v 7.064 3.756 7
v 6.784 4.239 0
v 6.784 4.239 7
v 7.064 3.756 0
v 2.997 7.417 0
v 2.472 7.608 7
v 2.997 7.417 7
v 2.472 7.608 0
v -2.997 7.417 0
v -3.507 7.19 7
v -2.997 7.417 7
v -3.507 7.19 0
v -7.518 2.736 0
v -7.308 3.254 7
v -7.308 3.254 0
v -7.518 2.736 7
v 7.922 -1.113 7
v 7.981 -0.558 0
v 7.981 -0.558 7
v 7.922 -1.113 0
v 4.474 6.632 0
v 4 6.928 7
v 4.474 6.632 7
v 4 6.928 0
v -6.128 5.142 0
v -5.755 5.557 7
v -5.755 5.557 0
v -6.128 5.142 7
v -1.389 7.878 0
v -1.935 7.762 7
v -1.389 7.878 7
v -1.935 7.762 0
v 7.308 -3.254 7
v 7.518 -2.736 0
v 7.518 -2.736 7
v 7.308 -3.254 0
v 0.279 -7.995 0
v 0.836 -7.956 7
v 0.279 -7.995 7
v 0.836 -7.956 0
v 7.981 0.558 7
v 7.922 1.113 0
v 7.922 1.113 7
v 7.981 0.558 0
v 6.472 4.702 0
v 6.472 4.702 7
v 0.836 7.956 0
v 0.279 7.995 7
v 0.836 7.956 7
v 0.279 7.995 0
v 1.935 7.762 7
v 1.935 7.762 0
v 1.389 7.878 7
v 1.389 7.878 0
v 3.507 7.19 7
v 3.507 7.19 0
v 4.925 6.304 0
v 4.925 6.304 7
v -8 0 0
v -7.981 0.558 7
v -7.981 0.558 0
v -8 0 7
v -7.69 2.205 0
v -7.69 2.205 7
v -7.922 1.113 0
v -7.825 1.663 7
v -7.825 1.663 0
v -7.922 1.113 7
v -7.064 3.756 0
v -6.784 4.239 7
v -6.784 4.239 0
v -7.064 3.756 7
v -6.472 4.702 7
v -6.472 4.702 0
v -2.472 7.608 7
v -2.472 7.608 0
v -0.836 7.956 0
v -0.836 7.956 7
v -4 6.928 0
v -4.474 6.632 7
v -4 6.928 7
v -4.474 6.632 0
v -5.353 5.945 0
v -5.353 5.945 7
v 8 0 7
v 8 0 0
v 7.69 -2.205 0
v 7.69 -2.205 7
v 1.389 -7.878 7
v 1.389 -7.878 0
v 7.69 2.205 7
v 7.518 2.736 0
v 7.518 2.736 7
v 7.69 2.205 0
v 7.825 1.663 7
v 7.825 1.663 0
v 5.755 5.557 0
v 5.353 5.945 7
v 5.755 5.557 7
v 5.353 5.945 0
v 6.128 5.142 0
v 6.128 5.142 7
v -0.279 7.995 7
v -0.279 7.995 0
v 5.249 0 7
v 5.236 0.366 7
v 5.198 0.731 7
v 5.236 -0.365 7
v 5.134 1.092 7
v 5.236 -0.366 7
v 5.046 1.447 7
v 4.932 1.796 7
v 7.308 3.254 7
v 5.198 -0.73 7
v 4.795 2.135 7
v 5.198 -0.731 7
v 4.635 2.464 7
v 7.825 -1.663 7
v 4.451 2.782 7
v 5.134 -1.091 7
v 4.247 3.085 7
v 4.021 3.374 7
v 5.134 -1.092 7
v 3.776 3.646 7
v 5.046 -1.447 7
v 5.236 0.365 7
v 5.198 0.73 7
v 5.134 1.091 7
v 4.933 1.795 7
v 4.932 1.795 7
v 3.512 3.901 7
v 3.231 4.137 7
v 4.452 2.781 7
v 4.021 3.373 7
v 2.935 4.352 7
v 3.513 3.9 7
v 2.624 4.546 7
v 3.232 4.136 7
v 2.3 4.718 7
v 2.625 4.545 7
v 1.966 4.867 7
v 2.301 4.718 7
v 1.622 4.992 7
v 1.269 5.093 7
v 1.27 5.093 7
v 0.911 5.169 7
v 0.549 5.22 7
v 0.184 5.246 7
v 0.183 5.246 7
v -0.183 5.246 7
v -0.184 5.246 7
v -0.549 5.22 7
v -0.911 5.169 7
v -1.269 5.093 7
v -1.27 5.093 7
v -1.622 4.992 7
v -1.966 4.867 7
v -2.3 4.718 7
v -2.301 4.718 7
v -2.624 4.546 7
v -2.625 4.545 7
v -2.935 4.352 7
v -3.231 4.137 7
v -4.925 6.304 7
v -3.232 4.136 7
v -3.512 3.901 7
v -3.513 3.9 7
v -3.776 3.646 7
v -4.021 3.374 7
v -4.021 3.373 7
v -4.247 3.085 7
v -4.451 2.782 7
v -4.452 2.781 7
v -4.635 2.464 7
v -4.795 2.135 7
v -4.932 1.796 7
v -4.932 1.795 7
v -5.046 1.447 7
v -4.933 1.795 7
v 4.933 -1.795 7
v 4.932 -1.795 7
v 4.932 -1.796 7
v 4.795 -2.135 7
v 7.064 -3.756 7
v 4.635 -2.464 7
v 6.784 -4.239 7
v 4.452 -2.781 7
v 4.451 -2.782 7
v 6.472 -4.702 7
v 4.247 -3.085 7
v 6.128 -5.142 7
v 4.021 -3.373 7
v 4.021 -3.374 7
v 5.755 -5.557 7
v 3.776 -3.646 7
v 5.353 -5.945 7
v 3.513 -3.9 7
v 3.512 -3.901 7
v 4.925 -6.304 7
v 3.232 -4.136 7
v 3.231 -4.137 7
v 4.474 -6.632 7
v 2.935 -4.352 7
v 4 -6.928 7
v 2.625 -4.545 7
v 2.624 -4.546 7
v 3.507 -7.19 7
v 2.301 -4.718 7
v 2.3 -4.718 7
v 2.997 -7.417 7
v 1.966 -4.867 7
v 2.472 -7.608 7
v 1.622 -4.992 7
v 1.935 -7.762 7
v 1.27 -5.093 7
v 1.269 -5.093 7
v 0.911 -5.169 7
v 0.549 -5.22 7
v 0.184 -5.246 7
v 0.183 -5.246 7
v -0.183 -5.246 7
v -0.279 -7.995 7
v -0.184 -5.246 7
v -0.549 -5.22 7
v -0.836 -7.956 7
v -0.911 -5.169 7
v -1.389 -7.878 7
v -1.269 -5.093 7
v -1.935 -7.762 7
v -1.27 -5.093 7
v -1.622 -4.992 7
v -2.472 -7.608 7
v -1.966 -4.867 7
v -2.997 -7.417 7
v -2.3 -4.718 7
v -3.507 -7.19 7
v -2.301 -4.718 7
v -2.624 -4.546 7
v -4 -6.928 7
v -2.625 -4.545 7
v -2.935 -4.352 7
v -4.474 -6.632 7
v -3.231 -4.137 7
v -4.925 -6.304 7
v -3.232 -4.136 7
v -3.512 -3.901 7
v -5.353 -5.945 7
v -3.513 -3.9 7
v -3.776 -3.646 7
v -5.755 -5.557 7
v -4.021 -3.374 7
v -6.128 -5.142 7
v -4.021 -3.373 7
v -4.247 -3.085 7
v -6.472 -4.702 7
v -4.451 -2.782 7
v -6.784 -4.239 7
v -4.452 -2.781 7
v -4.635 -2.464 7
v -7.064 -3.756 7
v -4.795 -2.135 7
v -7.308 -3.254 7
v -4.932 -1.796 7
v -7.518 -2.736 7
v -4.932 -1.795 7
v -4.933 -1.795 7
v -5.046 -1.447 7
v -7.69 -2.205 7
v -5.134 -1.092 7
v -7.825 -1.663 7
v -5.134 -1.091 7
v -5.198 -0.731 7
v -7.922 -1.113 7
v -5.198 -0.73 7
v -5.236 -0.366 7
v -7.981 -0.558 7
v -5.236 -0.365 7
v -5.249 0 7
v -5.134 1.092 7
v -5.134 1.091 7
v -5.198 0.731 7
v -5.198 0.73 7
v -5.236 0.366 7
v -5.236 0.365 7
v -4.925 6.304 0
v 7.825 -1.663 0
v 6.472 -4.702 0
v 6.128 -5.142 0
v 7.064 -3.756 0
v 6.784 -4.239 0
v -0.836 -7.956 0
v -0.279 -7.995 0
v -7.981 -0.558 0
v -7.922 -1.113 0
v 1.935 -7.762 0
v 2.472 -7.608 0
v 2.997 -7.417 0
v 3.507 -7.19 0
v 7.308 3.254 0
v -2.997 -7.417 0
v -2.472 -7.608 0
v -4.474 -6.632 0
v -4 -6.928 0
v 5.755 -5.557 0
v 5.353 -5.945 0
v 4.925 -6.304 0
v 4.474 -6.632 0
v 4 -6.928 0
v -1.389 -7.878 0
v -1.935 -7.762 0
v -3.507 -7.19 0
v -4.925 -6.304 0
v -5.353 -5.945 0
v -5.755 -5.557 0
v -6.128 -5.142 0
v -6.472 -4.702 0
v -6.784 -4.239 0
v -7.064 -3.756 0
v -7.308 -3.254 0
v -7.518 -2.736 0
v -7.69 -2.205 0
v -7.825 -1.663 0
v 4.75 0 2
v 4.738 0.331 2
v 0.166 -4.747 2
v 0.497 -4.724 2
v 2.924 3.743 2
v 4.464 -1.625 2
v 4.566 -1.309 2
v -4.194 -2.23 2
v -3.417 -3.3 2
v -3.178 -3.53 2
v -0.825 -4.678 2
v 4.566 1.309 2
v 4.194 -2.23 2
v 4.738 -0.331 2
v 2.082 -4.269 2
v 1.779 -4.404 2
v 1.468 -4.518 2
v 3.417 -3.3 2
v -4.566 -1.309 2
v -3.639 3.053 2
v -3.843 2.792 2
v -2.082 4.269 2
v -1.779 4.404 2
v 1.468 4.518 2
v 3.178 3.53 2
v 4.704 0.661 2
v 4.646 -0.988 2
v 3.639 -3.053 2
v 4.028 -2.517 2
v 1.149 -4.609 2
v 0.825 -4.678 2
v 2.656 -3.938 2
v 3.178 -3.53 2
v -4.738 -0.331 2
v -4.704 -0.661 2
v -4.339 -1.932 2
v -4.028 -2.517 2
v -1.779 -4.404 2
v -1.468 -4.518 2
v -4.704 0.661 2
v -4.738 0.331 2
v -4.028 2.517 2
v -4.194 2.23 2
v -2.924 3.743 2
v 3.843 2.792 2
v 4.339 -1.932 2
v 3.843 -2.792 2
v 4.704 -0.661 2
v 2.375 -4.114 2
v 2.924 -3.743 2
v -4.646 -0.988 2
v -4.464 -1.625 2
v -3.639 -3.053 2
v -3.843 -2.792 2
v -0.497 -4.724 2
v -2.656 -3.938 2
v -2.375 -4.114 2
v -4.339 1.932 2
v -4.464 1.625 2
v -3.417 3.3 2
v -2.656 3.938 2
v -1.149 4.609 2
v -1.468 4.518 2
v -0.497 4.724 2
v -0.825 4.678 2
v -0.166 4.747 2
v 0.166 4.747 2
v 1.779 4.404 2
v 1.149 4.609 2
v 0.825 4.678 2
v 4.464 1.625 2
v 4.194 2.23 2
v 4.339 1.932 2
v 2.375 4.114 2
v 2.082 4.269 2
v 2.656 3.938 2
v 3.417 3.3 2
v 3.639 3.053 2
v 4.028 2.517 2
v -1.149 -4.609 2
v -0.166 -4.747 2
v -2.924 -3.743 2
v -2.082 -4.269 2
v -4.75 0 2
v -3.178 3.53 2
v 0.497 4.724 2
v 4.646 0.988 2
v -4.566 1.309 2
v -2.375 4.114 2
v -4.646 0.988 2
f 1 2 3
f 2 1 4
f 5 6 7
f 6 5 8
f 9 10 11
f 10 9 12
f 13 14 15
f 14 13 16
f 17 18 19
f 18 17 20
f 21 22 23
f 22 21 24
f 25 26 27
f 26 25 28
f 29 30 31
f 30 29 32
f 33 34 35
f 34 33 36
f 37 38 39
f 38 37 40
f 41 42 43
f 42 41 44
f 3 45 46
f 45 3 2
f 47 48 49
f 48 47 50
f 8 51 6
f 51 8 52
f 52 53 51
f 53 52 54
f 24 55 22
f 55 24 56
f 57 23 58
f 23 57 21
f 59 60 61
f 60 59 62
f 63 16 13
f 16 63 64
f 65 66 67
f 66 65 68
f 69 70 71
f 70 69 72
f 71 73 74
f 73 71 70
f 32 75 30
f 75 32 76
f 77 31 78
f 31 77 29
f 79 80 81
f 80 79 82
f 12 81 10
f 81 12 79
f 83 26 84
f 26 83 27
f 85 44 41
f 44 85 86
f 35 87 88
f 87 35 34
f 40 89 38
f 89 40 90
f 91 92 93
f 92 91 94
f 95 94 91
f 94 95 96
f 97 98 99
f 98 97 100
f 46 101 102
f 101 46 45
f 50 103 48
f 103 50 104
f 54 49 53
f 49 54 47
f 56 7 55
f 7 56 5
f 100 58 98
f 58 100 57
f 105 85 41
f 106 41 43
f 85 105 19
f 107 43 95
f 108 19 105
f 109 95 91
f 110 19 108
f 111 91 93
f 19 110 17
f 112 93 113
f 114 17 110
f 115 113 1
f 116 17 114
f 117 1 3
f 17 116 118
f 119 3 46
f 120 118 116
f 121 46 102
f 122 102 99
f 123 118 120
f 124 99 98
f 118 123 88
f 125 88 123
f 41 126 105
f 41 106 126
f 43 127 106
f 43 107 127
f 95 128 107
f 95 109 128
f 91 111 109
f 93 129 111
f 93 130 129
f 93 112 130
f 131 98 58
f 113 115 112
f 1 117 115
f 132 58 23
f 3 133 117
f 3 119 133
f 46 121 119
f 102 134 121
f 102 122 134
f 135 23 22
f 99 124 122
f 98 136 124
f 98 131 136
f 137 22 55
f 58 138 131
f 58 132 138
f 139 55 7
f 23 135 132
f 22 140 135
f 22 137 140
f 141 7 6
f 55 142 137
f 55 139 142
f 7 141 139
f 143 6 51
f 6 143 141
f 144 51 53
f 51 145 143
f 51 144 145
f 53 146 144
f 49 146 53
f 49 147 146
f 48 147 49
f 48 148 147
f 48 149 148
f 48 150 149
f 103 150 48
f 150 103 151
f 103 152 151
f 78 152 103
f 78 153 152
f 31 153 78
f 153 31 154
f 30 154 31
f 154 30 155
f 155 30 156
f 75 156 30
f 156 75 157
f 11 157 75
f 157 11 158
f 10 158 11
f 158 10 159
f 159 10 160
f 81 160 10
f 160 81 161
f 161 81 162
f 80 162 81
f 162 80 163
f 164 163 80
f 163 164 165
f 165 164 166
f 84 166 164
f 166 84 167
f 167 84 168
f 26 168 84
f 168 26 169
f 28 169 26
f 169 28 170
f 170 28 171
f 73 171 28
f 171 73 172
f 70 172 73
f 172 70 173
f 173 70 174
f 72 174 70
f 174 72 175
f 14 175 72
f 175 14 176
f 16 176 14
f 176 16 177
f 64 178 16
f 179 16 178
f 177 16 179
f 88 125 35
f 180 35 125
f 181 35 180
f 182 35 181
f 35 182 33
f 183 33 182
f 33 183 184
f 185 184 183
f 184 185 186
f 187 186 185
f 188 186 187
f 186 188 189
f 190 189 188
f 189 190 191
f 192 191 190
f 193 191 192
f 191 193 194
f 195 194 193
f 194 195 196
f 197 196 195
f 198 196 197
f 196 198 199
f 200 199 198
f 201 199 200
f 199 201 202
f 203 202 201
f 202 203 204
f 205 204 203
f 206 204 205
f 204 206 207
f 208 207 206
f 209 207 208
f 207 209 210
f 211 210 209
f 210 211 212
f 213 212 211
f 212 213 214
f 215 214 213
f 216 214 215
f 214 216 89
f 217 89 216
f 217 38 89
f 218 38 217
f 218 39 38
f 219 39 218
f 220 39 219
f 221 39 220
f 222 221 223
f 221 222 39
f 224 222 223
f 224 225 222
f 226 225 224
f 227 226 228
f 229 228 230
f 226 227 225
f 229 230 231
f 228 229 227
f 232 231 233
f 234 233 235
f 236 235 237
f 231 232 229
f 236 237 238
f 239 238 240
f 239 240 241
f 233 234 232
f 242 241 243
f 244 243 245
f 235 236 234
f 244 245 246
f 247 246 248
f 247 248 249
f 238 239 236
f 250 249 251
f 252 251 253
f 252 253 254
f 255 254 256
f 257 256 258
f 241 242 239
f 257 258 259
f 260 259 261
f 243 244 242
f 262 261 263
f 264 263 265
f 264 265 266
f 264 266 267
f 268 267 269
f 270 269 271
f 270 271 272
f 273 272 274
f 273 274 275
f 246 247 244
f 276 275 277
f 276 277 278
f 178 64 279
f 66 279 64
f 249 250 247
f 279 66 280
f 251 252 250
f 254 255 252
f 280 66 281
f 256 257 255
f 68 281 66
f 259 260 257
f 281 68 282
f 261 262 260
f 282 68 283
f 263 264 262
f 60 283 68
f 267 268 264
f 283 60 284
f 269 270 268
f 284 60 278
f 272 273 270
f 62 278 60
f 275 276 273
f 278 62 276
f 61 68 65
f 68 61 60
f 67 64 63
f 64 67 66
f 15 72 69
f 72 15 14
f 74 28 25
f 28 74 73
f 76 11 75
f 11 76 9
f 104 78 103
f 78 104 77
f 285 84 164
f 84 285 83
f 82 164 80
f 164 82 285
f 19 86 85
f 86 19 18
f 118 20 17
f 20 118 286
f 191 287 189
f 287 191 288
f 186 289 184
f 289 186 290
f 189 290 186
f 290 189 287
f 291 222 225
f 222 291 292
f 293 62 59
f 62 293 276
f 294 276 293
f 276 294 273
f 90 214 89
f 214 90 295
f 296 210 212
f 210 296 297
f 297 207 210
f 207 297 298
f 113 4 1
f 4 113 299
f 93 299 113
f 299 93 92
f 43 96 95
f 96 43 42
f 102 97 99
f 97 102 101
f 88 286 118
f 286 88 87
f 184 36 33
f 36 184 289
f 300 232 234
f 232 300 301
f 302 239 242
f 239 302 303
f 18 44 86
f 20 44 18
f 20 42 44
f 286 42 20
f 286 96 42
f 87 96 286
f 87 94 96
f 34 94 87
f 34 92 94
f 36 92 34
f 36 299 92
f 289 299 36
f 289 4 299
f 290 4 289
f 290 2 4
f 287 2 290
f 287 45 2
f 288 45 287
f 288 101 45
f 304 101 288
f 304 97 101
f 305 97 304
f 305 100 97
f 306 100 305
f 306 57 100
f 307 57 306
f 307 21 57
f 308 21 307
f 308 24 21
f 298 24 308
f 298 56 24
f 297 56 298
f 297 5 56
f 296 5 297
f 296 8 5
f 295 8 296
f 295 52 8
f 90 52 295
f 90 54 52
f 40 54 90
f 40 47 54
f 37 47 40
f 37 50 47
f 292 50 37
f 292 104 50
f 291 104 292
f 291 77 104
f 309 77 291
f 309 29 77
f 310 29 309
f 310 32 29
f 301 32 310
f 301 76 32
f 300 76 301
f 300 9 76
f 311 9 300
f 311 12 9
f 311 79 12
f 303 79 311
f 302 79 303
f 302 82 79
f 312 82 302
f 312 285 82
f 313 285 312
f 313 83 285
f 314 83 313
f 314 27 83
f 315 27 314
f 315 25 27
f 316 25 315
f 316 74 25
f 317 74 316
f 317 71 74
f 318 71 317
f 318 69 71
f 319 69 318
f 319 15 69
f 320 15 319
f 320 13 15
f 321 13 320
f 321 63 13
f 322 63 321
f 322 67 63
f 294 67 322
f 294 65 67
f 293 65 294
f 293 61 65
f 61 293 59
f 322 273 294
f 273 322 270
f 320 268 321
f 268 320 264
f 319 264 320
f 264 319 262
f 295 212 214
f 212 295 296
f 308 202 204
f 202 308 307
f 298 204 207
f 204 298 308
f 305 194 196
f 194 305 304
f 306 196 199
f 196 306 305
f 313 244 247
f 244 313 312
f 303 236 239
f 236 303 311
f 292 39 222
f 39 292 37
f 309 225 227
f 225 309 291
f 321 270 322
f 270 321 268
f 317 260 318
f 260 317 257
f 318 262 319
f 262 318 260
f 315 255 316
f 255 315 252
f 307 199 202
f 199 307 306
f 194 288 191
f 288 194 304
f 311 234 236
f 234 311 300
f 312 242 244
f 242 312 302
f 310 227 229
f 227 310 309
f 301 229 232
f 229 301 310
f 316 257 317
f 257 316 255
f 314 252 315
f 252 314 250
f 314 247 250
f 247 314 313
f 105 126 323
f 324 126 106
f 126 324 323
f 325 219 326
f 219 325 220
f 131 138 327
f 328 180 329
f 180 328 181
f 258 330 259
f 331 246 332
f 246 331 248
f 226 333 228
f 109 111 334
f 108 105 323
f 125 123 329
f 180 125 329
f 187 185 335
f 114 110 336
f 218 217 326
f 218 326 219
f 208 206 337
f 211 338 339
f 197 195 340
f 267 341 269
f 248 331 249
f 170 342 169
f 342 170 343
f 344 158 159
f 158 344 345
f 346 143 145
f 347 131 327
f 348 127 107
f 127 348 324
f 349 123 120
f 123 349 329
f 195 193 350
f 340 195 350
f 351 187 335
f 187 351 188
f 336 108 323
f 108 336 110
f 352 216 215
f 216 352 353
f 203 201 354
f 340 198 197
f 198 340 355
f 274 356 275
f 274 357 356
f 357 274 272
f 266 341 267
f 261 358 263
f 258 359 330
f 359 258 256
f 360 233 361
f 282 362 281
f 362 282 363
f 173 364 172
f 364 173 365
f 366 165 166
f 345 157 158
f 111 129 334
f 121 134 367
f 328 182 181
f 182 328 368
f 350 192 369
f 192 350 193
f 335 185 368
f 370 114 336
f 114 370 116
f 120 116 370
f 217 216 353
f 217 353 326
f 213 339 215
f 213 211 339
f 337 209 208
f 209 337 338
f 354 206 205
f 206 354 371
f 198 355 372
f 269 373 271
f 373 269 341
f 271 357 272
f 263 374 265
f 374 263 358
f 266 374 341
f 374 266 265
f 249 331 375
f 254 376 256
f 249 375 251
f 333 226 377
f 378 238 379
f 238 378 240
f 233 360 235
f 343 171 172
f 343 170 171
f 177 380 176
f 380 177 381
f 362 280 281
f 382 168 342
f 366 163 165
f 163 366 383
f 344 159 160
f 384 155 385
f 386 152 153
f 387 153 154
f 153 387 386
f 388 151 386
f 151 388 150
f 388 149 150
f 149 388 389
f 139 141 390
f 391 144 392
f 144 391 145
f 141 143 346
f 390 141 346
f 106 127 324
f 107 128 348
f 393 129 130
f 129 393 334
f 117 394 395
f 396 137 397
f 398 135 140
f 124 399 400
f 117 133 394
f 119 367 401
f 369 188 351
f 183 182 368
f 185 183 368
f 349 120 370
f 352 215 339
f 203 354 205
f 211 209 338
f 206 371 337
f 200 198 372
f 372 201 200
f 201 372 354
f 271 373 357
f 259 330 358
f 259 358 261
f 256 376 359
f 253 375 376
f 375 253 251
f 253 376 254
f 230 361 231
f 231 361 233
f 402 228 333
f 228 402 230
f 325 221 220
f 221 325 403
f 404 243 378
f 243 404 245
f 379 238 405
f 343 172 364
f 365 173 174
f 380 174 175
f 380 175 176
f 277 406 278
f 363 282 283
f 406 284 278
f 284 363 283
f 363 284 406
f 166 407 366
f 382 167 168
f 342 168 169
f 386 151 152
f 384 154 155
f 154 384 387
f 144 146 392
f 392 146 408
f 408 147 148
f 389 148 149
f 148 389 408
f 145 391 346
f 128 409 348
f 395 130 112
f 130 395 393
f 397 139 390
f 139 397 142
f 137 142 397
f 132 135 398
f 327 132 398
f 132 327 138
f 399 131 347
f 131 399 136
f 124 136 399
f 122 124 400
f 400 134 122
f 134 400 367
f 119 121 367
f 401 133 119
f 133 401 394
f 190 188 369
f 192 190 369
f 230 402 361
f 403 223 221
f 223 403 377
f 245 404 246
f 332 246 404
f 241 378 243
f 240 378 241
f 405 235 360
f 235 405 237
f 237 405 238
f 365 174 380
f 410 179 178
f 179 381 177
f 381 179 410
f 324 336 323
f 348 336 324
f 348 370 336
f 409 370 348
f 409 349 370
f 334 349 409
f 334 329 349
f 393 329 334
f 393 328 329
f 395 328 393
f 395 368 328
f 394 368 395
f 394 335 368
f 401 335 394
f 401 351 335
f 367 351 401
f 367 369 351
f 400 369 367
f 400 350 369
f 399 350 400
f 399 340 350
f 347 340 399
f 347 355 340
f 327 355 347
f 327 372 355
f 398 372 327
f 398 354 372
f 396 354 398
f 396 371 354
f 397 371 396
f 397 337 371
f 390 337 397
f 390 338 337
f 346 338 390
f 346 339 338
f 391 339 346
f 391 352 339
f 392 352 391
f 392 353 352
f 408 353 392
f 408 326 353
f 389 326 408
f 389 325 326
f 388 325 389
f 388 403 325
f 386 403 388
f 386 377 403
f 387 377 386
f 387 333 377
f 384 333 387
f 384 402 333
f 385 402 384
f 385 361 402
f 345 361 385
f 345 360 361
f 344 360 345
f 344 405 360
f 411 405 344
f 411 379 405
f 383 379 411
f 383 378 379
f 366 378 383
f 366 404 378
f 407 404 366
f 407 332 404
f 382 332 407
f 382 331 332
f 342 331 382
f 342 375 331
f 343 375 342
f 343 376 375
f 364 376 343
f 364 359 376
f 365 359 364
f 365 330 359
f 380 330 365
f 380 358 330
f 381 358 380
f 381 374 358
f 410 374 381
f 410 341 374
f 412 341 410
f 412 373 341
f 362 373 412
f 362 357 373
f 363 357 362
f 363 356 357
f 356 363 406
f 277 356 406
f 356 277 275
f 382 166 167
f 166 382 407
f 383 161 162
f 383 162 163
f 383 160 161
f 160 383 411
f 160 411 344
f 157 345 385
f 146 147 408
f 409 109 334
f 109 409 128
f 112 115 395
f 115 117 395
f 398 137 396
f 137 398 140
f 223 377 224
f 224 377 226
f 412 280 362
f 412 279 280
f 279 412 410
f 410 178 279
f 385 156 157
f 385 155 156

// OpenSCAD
/* 
 * Telebot 1.1
 * Copyright (c) 2015-2016 by Paul-Louis Ageneau
 *
 * This program is free software: you can redistribute it and/or modify
 * it under the terms of the GNU General Public License as published by
 * the Free Software Foundation, either version 3 of the License, or
 * (at your option) any later version.
 *
 * This program is distributed in the hope that it will be useful,
 * but WITHOUT ANY WARRANTY; without even the implied warranty of
 * MERCHANTABILITY or FITNESS FOR A PARTICULAR PURPOSE.  See the
 * GNU General Public License for more details.
 *
 * You should have received a copy of the GNU General Public License
 * along with this program.  If not, see <http://www.gnu.org/licenses/>.
 */

// Axis cap

axis_radius = 5;
radius = axis_radius+3;
height = 7;
hole = 5;

translate([0,0,height/2]) difference() {
    cylinder(h=height, r=radius, center=true, $fn=90);
    translate([0,0,height/2-hole]) cylinder(h=hole+0.01, r1=axis_radius-0.25, r2=axis_radius+0.25, center=false, $fn=90);
}
